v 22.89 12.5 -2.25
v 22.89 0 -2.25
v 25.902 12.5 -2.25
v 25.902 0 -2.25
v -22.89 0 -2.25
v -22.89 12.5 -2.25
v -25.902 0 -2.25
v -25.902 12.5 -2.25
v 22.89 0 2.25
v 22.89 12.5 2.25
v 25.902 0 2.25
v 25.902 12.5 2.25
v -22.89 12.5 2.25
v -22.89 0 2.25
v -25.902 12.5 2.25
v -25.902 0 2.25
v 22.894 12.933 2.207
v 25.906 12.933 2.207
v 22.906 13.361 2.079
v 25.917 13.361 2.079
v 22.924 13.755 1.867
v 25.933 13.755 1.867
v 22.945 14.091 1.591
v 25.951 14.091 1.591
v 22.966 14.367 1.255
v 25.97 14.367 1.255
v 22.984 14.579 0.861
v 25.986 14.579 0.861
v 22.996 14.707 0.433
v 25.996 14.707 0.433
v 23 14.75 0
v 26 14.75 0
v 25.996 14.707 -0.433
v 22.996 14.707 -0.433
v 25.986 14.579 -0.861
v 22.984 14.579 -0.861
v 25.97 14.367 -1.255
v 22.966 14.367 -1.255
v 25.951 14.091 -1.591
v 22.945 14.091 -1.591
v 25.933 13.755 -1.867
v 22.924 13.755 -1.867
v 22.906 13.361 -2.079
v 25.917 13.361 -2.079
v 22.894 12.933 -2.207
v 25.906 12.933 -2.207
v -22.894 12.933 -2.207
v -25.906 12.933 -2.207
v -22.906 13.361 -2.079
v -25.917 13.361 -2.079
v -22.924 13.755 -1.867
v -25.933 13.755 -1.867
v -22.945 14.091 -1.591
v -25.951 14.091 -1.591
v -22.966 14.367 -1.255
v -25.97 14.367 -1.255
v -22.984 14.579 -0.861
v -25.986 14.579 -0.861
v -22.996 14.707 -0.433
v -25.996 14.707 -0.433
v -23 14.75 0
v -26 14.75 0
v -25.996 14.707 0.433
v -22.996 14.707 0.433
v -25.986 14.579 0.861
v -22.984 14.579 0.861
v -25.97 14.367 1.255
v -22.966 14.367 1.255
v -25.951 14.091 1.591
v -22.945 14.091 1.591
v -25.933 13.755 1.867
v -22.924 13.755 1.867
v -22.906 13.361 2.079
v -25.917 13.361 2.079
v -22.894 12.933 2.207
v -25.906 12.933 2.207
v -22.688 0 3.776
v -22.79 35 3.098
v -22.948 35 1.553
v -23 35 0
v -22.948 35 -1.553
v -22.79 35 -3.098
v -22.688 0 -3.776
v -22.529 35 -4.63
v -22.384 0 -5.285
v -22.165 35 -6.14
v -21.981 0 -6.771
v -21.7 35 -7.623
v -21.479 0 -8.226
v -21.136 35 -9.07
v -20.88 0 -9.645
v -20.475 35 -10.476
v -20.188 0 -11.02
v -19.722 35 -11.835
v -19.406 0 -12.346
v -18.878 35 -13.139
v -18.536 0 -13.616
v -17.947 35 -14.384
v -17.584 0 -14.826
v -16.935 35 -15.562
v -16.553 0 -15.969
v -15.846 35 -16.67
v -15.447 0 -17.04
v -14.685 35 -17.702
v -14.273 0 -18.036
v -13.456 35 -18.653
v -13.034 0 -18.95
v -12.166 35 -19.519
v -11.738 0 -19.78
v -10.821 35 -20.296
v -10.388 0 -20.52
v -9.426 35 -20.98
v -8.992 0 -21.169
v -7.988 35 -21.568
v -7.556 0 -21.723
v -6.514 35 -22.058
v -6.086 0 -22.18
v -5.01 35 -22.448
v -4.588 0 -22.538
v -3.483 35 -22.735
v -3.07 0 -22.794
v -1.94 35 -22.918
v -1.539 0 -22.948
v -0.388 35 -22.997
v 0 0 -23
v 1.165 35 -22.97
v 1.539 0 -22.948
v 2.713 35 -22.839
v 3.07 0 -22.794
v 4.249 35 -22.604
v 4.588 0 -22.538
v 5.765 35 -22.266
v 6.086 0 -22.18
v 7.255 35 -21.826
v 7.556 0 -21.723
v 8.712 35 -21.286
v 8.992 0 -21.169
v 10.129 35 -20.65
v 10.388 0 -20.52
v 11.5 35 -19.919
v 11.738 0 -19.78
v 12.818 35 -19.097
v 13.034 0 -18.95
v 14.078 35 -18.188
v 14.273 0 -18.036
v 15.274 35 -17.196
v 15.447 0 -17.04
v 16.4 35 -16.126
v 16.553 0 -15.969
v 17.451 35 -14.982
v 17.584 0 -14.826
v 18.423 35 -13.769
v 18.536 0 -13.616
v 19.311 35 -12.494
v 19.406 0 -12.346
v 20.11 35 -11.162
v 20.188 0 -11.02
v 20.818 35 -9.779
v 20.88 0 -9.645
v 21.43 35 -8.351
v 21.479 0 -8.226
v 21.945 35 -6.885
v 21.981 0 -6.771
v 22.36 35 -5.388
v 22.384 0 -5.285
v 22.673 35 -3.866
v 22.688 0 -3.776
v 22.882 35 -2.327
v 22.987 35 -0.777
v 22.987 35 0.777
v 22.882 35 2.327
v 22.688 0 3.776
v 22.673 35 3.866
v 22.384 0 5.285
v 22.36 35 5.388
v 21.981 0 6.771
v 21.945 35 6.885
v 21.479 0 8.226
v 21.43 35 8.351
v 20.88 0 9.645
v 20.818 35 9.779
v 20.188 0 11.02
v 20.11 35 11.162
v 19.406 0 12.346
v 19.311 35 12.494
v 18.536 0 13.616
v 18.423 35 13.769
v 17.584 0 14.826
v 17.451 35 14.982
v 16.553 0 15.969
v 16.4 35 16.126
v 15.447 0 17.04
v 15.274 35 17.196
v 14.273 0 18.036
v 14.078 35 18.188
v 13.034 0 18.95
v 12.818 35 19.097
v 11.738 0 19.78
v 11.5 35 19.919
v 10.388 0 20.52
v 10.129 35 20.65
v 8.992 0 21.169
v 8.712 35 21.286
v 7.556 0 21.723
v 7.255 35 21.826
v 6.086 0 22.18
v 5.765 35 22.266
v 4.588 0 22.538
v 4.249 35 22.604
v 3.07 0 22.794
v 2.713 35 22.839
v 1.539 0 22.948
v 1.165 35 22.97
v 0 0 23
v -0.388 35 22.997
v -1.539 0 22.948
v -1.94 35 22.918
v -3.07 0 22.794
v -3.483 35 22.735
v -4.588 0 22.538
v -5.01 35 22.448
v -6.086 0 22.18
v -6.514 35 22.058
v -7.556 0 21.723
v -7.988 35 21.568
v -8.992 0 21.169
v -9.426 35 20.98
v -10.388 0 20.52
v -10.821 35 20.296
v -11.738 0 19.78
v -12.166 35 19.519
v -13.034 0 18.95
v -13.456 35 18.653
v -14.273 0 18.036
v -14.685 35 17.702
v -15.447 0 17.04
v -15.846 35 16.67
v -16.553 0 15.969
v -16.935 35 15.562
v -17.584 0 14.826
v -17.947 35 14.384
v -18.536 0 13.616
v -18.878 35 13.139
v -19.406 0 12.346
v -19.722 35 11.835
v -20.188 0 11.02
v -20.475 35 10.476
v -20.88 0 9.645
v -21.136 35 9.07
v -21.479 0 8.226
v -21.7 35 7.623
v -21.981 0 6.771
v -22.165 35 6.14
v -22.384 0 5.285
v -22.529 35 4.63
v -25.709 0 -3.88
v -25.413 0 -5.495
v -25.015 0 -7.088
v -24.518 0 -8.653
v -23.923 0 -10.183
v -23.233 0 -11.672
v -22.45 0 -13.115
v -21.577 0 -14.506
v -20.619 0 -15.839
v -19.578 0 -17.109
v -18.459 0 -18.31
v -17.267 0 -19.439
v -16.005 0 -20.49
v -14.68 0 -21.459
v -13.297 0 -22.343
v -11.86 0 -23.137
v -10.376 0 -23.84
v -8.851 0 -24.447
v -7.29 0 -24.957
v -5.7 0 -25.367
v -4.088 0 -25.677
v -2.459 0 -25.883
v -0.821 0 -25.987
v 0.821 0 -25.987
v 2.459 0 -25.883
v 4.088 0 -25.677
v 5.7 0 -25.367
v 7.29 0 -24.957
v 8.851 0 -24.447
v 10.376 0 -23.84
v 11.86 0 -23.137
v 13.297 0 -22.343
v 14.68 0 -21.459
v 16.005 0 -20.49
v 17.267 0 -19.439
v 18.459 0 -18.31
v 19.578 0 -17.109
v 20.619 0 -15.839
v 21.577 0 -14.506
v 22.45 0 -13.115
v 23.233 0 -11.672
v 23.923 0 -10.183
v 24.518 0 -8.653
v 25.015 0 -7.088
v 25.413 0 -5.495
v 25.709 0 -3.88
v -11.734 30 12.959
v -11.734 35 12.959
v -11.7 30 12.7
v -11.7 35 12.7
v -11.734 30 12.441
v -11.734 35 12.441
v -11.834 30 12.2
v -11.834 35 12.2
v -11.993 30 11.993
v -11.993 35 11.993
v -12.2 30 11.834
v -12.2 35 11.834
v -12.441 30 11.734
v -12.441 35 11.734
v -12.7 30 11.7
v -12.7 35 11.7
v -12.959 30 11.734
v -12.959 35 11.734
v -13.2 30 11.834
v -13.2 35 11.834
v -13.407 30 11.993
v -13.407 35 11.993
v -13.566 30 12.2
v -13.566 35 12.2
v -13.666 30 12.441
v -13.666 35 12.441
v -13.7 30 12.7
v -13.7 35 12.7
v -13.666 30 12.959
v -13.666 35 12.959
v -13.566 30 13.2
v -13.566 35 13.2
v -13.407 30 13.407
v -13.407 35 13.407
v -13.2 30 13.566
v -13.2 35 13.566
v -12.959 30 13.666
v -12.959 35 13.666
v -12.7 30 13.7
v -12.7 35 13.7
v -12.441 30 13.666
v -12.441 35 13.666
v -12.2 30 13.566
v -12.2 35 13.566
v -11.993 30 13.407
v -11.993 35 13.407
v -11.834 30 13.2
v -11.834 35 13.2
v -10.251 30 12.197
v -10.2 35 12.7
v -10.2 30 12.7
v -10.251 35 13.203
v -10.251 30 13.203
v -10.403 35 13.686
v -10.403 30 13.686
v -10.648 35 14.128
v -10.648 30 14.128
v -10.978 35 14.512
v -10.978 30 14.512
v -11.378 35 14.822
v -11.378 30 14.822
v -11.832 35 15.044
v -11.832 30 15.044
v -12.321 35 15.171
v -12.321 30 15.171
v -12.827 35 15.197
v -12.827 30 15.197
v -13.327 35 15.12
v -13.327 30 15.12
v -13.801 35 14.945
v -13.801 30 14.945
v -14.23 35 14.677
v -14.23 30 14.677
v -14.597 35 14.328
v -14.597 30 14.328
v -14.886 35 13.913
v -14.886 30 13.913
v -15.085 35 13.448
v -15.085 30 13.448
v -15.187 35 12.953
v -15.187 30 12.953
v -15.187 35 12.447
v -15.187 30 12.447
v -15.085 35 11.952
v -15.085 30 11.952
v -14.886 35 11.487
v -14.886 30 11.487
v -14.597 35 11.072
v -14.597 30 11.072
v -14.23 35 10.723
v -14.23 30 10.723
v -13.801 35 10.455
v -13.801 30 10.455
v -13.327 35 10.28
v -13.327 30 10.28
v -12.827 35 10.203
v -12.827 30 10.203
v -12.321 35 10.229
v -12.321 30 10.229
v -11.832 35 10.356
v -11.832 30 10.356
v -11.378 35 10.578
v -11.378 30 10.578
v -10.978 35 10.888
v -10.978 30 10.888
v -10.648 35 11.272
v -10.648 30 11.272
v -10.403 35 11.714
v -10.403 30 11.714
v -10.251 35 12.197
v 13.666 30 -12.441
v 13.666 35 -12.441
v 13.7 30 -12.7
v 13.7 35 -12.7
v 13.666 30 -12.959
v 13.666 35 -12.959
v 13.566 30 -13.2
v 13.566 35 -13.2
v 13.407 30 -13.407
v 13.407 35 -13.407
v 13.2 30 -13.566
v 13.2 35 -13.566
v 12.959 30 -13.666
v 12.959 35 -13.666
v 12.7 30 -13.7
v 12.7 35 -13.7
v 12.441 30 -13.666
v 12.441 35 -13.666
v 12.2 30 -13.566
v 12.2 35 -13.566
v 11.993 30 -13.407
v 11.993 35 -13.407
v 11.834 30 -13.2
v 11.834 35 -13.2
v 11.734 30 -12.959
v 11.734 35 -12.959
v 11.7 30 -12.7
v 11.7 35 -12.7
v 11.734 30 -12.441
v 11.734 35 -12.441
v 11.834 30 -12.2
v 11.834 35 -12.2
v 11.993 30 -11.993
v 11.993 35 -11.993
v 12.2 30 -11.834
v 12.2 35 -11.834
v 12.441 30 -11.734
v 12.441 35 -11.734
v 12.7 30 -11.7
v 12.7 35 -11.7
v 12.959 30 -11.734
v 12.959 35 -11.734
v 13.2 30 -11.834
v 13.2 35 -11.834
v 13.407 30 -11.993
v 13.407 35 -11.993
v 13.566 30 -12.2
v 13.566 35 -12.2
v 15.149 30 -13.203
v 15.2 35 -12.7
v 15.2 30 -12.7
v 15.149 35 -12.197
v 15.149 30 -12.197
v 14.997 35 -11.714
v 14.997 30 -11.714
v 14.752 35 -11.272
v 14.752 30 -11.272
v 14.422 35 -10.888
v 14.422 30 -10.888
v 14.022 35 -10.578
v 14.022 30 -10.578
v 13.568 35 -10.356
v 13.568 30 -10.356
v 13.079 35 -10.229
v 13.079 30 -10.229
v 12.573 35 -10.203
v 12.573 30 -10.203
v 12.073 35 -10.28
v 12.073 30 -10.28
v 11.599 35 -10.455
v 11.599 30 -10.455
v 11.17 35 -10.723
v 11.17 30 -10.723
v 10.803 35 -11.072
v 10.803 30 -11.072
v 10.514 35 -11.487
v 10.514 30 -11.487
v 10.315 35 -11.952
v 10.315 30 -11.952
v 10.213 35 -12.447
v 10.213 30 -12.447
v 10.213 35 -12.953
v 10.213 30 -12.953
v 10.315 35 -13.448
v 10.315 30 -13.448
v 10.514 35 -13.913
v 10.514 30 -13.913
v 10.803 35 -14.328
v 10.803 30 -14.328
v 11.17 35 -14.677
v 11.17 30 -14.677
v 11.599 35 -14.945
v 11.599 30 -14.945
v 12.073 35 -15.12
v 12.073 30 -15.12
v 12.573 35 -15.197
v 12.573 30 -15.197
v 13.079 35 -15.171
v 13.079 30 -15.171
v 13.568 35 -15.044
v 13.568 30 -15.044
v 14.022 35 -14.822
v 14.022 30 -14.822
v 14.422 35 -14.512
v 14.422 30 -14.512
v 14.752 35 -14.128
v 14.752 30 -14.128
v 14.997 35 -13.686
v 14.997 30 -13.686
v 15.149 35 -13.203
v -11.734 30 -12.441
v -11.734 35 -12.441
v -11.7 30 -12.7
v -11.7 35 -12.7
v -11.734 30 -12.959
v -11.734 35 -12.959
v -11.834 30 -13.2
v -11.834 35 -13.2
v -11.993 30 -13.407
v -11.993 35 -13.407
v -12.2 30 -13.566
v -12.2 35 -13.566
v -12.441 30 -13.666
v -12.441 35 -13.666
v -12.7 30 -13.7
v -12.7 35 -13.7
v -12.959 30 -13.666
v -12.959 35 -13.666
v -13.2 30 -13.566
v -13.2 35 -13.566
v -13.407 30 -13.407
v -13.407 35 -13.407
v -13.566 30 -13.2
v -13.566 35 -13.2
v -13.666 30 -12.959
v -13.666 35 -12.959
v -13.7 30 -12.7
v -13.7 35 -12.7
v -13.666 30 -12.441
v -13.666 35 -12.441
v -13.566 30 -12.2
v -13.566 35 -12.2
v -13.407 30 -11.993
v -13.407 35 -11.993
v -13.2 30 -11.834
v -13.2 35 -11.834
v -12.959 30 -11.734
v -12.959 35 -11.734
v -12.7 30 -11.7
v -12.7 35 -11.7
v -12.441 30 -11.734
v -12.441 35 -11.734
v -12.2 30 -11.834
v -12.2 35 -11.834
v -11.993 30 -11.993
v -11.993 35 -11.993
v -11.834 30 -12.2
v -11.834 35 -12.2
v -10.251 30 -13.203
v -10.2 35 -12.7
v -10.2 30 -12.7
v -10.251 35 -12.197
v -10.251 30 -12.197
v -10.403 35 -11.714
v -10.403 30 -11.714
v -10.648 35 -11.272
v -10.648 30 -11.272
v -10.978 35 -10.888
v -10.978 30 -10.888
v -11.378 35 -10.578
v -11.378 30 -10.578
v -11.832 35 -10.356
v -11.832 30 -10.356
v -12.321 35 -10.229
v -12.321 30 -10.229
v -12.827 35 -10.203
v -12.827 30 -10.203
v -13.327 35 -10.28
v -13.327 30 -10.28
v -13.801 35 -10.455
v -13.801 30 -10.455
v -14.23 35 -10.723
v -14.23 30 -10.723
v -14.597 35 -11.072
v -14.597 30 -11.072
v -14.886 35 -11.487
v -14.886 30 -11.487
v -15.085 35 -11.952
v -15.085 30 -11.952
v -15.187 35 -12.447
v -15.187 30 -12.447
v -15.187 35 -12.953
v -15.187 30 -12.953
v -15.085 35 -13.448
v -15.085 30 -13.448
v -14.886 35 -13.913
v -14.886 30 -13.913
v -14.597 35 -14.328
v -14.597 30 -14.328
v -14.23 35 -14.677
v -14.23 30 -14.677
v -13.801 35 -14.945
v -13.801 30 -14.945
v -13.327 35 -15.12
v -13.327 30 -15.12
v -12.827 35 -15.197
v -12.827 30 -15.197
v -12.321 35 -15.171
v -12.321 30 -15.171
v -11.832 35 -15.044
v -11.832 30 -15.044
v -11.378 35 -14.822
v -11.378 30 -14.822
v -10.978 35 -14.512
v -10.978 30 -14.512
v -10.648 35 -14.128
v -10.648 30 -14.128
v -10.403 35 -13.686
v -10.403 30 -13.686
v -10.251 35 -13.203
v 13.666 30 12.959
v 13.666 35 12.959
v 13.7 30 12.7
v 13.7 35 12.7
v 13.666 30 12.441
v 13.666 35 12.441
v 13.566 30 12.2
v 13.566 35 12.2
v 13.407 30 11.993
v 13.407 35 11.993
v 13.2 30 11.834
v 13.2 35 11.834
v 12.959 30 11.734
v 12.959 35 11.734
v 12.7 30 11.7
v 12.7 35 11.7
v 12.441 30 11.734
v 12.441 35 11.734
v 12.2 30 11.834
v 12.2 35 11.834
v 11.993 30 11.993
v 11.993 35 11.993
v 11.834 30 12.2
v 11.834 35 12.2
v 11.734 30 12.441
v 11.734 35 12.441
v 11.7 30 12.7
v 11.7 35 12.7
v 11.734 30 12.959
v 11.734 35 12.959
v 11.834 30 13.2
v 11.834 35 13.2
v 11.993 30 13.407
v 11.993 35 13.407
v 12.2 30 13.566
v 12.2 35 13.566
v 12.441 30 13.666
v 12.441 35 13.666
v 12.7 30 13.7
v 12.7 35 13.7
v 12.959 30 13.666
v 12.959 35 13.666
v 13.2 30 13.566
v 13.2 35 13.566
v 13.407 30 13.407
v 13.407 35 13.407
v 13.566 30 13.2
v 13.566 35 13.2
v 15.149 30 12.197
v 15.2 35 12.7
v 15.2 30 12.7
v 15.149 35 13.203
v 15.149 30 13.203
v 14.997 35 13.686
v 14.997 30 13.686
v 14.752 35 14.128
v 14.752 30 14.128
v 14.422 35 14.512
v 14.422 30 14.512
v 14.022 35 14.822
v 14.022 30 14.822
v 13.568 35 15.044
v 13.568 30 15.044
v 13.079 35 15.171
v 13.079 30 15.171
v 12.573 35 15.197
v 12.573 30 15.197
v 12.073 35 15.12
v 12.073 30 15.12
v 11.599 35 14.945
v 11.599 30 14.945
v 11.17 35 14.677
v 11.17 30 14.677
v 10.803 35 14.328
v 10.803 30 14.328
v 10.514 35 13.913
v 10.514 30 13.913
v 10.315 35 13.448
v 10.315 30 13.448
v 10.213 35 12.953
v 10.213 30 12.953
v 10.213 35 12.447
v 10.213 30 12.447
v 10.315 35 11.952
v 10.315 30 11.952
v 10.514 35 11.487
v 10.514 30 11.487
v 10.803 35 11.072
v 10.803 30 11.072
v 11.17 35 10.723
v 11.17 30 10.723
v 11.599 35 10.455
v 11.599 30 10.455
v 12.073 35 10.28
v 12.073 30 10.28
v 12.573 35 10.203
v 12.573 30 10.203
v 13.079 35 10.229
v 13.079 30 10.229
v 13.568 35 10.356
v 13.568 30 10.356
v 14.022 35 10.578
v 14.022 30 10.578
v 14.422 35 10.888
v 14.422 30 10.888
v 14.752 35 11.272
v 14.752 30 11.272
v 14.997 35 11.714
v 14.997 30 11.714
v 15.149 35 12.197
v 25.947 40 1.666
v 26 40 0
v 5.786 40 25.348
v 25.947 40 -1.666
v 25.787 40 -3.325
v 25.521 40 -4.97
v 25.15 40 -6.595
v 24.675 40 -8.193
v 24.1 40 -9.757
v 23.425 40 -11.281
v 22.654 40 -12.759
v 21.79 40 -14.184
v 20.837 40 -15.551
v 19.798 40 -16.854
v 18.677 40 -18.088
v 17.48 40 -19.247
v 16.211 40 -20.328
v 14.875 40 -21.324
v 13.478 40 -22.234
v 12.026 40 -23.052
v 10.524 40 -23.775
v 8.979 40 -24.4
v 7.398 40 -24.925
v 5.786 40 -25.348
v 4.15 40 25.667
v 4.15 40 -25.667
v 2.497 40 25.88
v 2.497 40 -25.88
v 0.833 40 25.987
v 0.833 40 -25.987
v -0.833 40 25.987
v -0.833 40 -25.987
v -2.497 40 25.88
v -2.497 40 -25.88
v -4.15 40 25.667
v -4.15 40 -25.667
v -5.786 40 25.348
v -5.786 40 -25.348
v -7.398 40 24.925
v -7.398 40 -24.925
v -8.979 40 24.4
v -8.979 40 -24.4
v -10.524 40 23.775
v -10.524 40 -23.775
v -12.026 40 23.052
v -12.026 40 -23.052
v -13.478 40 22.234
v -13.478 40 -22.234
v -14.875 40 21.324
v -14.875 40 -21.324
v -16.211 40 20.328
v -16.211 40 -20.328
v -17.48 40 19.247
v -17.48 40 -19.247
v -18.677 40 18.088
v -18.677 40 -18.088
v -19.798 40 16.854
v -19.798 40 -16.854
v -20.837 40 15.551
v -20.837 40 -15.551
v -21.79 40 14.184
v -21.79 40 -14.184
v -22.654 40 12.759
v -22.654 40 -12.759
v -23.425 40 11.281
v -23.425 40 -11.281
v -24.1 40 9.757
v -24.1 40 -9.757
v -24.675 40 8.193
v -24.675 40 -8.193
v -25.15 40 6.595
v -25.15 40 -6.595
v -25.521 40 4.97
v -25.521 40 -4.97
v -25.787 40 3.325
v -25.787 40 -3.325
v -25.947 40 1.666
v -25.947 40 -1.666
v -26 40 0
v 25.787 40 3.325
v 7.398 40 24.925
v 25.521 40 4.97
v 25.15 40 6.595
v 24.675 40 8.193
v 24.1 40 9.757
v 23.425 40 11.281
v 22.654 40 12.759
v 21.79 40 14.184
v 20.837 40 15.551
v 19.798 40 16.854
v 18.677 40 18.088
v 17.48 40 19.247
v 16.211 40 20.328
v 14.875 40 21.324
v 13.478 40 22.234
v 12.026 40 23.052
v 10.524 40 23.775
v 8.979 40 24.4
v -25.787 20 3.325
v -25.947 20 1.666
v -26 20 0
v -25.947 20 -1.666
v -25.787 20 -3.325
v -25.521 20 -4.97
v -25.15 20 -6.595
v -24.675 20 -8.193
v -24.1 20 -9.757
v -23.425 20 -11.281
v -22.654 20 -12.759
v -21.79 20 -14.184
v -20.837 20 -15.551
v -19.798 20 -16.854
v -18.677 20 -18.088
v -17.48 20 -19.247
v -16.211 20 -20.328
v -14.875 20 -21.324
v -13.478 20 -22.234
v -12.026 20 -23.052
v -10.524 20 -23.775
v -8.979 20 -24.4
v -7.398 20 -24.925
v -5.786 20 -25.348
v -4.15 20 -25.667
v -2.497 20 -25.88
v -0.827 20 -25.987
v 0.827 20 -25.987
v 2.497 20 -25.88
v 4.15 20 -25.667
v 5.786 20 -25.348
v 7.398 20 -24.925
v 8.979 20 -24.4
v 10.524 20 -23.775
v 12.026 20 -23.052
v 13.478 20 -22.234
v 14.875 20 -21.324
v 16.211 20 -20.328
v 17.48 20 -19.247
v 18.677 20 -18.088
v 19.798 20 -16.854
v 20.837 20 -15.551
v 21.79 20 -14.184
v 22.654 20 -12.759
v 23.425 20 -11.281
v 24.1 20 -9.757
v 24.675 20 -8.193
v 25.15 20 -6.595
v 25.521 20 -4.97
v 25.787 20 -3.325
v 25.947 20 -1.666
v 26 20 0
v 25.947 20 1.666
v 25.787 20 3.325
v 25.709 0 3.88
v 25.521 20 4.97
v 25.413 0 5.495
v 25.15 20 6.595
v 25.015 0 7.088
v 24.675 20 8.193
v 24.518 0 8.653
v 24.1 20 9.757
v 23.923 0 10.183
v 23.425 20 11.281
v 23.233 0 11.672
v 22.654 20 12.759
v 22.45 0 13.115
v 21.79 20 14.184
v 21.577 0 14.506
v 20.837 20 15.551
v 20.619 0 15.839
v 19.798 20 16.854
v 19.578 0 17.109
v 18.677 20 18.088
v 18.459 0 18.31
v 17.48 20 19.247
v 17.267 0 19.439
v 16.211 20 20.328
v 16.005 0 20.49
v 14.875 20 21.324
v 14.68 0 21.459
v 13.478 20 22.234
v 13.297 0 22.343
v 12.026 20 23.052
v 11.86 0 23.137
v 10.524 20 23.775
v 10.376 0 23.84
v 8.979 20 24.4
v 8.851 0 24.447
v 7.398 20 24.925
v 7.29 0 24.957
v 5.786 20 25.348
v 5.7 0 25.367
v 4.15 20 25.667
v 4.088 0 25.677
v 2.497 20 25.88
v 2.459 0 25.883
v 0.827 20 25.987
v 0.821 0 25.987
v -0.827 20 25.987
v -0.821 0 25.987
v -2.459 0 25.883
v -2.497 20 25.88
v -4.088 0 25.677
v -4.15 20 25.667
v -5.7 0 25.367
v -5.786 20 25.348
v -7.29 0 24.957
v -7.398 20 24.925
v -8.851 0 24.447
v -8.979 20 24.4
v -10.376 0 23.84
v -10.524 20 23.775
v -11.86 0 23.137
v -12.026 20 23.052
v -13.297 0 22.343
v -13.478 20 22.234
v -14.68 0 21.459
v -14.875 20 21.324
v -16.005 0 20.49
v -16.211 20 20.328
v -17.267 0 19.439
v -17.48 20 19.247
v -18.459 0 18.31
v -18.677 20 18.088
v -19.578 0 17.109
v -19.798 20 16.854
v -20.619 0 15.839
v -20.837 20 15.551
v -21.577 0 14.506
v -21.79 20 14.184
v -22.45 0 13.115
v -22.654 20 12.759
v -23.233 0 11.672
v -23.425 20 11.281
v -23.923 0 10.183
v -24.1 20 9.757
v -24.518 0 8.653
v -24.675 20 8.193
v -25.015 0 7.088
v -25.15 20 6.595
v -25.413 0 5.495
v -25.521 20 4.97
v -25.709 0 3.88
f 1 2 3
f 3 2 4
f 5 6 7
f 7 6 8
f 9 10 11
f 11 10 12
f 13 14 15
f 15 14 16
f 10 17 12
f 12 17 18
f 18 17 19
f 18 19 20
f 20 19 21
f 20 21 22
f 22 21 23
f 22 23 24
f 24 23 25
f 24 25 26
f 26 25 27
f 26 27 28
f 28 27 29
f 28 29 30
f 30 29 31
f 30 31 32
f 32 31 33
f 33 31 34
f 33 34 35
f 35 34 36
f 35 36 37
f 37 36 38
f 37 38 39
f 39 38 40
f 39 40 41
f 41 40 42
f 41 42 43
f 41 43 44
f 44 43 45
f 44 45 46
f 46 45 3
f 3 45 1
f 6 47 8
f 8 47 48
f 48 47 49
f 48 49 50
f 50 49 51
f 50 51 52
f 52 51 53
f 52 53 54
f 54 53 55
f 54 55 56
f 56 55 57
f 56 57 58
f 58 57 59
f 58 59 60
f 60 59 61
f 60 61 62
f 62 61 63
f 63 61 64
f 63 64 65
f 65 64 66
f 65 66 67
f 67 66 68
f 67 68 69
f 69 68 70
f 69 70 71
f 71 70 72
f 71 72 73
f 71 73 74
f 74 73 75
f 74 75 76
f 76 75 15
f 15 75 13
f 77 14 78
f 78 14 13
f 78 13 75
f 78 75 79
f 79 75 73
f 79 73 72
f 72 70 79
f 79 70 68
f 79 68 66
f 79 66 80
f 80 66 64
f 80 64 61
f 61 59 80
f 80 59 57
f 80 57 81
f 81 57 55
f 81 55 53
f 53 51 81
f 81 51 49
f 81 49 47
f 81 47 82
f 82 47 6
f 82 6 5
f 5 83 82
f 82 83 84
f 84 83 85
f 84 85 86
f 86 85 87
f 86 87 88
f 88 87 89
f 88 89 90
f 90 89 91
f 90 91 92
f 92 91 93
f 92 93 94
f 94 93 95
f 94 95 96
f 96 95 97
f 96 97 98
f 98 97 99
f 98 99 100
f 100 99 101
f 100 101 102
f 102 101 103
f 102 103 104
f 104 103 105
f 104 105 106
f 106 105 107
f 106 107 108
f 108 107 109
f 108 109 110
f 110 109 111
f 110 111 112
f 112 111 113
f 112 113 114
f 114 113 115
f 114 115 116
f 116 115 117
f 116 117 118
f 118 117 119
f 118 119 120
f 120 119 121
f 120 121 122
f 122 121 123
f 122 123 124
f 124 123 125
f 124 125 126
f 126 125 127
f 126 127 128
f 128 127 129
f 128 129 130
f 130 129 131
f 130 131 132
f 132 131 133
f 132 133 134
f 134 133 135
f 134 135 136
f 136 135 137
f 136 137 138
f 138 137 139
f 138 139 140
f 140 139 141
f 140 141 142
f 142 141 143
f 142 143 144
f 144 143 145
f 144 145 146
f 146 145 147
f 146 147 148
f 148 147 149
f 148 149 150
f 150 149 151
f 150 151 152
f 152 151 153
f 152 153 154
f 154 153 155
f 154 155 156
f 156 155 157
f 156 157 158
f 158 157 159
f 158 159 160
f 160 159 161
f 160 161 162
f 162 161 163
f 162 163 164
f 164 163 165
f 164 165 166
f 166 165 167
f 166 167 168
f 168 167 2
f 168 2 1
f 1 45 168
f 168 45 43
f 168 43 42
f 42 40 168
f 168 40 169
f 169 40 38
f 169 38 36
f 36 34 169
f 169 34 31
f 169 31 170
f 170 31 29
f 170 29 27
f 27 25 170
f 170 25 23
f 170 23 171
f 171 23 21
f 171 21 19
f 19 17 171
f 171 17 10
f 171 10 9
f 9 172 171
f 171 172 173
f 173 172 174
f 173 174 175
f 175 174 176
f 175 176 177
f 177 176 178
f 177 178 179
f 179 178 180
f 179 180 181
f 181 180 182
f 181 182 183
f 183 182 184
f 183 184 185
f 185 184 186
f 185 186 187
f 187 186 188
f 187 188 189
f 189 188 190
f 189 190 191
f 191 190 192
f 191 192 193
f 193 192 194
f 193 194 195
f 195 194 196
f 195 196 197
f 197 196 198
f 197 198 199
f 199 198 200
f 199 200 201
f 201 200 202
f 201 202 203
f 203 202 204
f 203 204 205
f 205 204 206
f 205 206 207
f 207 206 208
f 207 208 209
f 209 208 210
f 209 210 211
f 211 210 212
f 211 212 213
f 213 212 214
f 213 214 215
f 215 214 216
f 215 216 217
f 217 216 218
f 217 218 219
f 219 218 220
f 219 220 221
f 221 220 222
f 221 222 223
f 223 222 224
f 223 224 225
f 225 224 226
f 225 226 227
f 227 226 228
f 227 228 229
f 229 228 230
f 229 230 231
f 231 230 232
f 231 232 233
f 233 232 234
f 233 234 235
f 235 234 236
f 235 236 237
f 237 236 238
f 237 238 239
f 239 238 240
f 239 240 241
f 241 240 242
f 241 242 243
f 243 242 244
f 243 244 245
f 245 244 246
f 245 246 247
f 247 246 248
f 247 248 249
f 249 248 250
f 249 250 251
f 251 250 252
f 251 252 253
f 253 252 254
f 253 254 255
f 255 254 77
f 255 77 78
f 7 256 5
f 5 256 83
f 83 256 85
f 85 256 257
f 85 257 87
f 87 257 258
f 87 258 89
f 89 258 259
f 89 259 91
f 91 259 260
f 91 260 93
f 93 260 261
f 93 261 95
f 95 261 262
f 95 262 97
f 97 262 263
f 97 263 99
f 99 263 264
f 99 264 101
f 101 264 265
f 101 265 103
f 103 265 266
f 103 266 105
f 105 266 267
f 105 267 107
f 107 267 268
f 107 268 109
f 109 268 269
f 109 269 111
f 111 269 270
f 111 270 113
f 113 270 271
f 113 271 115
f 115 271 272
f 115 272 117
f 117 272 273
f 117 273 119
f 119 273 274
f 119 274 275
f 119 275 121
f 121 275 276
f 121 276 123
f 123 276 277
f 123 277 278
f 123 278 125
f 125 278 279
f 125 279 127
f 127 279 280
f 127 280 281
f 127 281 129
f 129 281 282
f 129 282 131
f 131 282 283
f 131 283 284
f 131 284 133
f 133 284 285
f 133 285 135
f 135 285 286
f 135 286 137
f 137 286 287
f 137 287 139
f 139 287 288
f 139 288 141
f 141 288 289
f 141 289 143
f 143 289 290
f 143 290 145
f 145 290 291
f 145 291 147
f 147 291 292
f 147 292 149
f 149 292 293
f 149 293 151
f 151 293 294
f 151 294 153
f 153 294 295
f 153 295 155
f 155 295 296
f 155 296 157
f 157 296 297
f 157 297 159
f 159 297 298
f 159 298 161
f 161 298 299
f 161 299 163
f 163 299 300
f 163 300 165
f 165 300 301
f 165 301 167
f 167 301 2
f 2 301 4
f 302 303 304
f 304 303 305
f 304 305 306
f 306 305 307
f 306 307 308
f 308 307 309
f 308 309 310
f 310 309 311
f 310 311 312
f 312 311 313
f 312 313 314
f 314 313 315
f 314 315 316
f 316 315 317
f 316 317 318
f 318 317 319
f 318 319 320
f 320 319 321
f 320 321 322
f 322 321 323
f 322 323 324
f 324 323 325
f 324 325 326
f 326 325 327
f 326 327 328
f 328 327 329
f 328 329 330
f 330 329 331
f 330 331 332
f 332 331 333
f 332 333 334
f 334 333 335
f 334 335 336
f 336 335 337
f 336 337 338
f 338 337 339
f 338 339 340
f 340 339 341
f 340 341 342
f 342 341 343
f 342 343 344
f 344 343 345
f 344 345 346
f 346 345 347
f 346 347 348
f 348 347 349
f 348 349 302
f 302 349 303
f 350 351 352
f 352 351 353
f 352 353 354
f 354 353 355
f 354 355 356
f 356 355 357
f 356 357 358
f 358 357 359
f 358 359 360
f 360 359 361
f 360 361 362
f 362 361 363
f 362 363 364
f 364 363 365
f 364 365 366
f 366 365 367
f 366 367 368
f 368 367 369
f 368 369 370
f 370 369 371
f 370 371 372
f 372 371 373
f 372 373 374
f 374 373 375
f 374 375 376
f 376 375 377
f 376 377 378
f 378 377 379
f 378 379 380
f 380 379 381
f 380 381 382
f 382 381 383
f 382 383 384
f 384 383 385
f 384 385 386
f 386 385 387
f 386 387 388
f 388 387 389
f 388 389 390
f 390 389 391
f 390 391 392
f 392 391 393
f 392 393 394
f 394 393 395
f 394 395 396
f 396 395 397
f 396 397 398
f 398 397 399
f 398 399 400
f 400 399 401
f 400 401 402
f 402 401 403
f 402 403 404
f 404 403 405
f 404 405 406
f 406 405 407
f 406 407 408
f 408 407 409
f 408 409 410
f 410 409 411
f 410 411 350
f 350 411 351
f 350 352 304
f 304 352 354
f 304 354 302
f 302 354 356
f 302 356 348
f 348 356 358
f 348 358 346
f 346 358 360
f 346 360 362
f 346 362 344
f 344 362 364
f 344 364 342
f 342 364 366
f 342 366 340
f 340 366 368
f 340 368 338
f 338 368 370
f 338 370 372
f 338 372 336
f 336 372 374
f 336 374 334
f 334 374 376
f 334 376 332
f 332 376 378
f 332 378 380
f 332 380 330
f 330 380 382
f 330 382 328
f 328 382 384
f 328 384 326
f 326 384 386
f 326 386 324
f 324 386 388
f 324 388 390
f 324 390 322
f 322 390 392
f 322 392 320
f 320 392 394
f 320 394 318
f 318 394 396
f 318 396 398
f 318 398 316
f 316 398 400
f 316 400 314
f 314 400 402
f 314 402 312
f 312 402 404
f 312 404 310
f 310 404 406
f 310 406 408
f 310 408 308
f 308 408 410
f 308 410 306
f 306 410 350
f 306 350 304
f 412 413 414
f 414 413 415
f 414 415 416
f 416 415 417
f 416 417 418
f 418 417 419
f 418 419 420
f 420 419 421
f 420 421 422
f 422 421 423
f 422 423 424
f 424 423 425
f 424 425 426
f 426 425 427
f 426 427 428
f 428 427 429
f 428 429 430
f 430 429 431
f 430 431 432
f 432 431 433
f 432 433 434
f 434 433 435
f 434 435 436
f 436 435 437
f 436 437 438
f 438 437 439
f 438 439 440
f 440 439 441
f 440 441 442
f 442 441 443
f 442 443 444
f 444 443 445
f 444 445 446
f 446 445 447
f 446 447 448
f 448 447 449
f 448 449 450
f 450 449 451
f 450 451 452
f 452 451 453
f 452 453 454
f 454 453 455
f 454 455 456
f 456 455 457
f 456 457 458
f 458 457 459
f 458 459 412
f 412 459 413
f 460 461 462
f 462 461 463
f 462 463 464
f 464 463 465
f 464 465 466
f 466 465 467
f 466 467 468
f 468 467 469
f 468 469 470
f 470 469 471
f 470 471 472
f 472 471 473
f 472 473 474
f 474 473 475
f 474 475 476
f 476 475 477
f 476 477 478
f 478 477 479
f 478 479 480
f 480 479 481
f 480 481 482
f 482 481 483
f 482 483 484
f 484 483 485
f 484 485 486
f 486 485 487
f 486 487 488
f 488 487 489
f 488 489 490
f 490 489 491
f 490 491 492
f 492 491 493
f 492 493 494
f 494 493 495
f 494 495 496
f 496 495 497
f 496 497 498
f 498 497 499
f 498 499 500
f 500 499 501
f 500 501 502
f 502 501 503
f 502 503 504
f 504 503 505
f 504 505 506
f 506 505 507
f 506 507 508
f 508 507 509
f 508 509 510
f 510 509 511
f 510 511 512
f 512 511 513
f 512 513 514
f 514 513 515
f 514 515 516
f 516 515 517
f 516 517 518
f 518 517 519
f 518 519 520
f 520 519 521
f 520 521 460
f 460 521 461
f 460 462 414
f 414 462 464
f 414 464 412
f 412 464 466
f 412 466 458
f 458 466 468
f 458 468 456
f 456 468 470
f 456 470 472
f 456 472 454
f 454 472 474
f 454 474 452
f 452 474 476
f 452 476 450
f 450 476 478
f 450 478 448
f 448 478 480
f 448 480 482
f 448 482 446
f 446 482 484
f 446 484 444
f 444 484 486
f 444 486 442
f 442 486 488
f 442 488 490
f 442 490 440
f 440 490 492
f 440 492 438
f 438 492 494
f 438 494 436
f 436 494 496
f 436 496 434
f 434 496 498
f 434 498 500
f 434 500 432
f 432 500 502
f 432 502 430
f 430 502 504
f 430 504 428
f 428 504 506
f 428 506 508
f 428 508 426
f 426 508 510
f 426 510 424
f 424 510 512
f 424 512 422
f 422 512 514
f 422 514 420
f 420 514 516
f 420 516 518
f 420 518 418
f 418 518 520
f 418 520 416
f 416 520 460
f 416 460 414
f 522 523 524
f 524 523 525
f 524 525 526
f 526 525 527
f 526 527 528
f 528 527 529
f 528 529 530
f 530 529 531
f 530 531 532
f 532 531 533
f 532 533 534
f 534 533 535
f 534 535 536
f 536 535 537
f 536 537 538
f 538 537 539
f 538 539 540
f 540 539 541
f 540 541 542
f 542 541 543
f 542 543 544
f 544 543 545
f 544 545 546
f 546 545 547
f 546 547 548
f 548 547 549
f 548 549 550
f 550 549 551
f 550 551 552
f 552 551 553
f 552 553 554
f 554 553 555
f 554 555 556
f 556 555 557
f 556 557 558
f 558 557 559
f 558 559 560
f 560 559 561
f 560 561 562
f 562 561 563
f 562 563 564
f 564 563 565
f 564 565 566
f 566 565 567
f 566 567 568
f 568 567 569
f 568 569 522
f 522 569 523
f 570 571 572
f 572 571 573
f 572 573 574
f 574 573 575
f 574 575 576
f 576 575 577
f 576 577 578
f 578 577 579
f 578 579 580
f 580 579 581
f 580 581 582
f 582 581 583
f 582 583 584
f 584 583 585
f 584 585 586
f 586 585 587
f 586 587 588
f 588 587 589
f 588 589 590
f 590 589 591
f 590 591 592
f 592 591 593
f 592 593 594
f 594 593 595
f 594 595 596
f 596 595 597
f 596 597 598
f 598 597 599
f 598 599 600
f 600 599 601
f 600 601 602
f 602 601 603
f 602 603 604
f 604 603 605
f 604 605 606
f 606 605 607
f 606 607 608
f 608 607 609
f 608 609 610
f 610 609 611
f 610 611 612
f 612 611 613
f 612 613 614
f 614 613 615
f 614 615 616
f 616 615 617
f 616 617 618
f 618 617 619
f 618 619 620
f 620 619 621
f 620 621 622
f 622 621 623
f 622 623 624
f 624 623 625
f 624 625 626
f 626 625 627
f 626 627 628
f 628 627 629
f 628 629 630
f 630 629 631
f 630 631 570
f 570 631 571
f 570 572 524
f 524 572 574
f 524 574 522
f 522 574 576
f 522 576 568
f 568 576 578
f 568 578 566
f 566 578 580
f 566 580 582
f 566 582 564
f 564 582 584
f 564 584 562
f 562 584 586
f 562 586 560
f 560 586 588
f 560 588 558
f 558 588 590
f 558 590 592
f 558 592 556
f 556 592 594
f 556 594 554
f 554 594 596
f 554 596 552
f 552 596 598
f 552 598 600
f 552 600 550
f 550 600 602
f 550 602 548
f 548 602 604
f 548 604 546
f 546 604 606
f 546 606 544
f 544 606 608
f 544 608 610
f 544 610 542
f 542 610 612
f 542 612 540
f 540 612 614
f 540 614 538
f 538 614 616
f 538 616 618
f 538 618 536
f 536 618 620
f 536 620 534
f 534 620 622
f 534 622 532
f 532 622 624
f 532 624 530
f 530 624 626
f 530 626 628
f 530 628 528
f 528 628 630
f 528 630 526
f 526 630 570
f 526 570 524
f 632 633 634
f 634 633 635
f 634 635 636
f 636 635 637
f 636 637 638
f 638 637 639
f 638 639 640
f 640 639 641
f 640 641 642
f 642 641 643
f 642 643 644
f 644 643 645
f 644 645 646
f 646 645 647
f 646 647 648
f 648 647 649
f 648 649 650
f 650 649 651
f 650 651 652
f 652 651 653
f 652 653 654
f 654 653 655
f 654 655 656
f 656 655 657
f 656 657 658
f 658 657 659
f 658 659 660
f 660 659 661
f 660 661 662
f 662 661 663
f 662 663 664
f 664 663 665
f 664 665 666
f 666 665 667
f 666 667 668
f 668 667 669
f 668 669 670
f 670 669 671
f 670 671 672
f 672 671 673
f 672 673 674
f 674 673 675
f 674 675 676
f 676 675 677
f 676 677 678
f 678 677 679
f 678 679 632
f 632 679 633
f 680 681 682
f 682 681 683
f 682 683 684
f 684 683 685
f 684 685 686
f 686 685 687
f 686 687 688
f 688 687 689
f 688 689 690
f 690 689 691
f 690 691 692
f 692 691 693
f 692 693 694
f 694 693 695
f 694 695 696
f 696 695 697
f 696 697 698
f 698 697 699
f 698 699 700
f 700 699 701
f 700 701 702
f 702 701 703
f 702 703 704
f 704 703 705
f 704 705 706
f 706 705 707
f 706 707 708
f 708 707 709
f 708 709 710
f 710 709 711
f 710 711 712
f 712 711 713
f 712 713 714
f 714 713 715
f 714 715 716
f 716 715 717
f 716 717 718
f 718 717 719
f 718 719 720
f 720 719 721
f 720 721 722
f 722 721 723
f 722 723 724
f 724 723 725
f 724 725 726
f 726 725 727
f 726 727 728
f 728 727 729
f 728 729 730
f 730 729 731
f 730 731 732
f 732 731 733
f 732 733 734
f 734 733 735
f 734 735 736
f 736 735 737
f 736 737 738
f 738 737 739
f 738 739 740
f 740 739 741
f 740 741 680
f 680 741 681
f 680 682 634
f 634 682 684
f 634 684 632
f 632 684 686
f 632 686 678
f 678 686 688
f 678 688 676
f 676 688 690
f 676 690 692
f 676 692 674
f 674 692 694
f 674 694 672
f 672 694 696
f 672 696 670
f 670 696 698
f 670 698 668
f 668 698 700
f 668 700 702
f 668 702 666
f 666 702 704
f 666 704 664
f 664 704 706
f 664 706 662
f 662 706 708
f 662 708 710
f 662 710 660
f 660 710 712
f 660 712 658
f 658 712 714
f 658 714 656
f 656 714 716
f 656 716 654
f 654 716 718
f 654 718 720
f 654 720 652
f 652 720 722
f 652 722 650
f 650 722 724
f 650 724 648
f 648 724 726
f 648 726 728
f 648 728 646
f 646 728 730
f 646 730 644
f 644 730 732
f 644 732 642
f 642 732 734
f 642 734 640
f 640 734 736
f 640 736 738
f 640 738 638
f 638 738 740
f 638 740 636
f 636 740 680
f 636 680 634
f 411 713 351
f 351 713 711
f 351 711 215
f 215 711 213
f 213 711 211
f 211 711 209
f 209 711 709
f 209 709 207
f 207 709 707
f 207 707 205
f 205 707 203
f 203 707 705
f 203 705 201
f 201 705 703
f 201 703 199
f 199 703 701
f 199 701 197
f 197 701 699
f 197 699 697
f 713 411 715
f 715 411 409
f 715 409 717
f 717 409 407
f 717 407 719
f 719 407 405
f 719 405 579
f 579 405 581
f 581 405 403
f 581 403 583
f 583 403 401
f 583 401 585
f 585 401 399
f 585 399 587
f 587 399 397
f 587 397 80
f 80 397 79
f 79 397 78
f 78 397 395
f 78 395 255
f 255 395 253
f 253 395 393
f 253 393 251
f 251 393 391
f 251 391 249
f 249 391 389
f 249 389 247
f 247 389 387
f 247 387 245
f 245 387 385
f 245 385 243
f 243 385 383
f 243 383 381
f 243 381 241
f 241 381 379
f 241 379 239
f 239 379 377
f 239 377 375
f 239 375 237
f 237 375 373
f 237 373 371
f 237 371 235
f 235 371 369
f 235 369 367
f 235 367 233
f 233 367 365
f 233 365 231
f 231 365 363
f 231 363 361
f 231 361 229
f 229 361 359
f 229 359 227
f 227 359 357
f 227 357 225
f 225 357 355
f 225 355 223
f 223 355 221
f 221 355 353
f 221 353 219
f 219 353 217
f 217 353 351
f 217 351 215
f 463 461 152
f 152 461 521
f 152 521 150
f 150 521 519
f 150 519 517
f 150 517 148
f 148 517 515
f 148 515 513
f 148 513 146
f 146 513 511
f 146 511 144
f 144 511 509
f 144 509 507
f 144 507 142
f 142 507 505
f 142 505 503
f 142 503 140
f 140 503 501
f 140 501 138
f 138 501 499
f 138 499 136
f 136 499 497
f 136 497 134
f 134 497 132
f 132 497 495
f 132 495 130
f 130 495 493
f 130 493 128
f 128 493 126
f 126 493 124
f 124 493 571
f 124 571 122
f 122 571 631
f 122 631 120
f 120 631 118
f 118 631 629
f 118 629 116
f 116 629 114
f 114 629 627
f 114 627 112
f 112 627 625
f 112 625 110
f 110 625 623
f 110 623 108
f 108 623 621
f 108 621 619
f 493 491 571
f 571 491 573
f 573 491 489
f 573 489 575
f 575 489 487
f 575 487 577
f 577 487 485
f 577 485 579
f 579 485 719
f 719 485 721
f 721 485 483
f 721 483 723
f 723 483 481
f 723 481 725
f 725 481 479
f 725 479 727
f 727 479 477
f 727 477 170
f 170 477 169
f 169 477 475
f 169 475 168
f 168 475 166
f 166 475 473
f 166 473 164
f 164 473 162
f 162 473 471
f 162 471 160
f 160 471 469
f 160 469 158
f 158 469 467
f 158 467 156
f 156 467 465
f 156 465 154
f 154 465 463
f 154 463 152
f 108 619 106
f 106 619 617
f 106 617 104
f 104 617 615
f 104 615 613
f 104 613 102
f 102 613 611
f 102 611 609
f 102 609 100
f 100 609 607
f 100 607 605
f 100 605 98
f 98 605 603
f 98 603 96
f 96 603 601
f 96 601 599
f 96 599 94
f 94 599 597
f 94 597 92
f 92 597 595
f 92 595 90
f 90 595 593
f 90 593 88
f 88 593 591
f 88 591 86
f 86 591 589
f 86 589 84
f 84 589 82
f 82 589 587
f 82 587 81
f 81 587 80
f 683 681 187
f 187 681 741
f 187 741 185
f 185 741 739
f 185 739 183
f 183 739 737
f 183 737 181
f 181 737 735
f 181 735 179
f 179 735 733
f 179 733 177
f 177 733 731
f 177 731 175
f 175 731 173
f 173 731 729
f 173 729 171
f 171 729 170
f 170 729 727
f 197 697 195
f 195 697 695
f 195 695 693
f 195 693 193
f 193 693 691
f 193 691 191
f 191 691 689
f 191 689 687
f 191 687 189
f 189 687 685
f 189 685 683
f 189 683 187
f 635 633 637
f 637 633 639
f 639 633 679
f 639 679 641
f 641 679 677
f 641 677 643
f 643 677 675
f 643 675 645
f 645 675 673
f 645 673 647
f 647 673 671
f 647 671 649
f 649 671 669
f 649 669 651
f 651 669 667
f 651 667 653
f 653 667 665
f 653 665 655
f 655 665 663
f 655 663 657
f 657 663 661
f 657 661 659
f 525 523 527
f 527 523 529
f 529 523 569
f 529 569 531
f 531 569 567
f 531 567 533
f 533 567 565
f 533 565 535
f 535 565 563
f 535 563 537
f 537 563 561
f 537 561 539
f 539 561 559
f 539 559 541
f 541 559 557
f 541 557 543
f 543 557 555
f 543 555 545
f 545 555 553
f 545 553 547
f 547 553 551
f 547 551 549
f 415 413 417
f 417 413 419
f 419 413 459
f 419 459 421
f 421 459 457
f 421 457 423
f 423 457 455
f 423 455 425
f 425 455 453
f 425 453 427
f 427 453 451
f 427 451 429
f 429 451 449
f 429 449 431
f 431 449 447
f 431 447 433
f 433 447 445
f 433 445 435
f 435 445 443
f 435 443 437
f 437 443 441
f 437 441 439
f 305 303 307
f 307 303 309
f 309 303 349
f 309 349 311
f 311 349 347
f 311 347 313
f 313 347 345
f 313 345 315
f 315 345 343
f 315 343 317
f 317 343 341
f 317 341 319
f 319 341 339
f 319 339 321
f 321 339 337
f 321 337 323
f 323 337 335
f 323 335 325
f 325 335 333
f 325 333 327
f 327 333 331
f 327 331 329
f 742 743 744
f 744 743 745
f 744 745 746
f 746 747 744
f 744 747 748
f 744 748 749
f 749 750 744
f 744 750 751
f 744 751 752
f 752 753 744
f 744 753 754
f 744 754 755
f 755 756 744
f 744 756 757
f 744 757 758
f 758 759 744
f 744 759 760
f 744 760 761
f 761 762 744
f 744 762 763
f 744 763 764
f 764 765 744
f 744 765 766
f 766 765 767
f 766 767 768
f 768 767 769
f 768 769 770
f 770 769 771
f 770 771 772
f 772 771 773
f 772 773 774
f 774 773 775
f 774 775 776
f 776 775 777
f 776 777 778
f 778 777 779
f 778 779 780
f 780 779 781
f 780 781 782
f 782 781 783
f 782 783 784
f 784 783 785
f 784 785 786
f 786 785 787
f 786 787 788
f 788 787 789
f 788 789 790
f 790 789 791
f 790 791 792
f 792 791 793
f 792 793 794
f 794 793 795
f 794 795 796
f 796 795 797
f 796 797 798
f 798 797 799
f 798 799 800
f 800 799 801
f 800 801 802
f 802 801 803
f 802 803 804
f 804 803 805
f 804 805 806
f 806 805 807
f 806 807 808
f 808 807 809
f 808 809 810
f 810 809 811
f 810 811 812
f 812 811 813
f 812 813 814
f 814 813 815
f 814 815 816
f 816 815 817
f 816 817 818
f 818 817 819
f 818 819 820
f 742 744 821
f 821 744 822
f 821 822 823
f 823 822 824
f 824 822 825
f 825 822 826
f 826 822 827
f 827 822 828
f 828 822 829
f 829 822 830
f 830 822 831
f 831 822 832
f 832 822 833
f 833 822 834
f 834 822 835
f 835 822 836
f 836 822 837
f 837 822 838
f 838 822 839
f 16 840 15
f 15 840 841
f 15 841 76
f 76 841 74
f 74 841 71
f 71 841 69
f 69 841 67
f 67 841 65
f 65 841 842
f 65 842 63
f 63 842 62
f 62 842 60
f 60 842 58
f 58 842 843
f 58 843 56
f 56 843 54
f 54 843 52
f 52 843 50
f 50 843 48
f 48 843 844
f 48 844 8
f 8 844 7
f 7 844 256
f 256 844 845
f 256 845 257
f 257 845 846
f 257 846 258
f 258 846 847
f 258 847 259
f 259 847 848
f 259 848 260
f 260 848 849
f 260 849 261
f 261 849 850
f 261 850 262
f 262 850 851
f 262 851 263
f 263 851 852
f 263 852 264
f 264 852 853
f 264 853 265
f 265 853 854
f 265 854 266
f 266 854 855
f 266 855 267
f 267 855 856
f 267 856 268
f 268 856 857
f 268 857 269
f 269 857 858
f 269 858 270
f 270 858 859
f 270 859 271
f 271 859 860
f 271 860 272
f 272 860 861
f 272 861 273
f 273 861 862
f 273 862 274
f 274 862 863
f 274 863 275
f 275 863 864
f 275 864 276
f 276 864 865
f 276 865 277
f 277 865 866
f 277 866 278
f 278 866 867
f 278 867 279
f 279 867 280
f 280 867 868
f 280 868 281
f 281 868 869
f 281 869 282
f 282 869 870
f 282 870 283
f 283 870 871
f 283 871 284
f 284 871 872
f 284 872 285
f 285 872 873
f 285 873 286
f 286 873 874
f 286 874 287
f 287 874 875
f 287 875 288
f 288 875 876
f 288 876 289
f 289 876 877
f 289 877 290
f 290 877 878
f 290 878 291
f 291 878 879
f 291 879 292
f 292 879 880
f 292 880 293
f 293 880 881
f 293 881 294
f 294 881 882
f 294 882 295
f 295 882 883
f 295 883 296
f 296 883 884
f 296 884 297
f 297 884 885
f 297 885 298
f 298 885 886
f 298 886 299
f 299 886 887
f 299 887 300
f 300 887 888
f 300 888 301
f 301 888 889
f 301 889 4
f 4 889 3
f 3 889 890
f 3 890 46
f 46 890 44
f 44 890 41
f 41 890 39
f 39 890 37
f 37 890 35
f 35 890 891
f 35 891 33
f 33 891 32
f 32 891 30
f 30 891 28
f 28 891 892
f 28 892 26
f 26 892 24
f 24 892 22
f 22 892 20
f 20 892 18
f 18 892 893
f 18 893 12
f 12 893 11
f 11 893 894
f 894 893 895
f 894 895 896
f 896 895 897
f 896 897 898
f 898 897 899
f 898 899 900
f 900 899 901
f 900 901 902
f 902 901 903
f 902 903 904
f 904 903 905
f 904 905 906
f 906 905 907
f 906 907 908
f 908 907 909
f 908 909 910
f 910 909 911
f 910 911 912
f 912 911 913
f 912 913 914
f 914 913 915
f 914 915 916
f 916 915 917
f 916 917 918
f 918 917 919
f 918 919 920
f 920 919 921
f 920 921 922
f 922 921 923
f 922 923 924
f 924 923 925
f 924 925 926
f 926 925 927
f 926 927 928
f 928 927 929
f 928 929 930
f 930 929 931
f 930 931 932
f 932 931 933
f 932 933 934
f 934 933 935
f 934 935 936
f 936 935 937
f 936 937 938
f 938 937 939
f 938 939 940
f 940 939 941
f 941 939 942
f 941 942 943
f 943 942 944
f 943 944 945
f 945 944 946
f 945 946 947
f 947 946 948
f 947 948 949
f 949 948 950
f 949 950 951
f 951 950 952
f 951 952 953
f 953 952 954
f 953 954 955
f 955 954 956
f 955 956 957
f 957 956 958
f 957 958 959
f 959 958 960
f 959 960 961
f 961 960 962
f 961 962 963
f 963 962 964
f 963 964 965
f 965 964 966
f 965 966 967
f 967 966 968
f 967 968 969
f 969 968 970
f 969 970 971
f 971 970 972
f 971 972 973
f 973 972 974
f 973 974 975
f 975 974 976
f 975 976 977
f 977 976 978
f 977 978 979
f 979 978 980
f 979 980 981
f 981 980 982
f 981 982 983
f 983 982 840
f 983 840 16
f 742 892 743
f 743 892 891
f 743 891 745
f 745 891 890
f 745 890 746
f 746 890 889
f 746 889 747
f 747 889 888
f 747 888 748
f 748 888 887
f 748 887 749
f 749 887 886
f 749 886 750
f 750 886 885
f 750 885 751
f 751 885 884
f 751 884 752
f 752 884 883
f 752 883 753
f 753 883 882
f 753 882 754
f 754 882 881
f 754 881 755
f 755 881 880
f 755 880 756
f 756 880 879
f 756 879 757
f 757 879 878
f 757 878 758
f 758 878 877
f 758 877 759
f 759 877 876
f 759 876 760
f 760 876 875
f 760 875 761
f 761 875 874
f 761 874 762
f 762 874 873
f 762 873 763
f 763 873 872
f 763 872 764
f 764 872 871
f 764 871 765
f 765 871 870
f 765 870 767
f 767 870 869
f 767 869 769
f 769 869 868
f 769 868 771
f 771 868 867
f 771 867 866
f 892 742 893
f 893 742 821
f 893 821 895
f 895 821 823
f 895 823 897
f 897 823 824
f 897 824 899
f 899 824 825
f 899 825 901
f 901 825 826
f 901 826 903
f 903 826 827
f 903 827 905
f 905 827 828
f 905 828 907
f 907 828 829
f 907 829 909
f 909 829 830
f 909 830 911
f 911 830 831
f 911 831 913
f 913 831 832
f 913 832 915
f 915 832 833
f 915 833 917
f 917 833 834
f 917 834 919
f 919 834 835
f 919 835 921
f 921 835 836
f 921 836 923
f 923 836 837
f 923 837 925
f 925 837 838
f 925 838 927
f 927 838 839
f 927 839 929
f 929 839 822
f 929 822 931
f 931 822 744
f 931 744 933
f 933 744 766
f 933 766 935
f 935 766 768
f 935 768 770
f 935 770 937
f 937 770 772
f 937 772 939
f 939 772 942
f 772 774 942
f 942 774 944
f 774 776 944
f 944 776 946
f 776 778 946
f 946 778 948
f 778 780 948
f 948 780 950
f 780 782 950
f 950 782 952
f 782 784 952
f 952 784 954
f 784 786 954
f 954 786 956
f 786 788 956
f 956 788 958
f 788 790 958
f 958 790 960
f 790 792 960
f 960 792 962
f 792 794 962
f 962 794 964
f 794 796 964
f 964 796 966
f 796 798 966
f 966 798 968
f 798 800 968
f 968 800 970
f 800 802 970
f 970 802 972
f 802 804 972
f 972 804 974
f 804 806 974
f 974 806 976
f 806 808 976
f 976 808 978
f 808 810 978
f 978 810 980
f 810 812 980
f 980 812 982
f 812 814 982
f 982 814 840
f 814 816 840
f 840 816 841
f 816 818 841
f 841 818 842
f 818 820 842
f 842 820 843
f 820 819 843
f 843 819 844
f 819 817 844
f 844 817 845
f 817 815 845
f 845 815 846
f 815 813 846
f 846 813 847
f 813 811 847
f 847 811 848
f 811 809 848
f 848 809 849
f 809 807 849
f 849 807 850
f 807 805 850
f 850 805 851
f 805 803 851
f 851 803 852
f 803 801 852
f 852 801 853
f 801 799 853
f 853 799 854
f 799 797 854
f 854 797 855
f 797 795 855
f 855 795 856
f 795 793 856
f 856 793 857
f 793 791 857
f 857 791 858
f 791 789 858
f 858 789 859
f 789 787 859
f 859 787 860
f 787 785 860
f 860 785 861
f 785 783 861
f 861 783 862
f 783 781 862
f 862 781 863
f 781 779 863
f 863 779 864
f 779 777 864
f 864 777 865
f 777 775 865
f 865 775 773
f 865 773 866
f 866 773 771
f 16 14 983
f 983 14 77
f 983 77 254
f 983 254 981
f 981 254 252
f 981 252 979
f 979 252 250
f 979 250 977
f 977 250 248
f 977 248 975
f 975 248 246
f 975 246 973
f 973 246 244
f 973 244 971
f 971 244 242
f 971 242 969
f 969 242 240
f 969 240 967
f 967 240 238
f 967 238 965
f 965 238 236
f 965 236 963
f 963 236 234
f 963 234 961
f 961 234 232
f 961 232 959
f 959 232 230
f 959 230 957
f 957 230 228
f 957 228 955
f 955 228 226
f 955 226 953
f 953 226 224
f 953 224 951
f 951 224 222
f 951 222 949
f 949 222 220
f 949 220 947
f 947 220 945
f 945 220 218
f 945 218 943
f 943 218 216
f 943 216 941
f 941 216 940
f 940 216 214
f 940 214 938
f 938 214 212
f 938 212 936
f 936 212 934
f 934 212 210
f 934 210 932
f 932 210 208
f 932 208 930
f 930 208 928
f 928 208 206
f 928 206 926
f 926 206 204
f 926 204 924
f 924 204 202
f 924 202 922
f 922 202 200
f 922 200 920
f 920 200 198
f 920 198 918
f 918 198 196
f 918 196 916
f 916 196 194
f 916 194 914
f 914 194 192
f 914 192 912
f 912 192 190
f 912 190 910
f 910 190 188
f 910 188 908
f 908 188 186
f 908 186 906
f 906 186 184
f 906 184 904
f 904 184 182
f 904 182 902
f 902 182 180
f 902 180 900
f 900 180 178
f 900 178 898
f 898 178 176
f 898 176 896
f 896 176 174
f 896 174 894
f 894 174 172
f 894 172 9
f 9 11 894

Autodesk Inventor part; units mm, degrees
ref_plane "XZ Plane" through (0, 0, 0) normal (0, 1, 0) x (-1, 0, 0)
ref_plane "XY Plane" through (0, 0, 0) normal (0, 0, 1) x (1, 0, 0)
sketch "Sketch1" plane through (0, 0, 0) normal (0, 1, 0) x (-1, 0, 0)
  circle A0 centre (0, 0) radius 23
  circle A1 centre (0, 0) radius 26
  dimension "d0" = 46
  dimension "d1" = 52
extrude "Extrusion1" add sketch "Sketch1" along normal blind 35
sketch "Sketch2" plane through (0, 35, 0) normal (0, 1, 0) x (1, 0, 0)
  circle A0 centre (0, 0) radius 26
extrude "Extrusion2" add sketch "Sketch2" along normal blind 5
sketch "Sketch3" plane through (0, 35, 0) normal (0, -1, 0) x (1, 0, 0)
  line L0 (-12.7, 12.7) -> (12.7, 12.7)
  line L1 (12.7, 12.7) -> (12.7, -12.7)
  line L2 (12.7, -12.7) -> (-12.7, -12.7)
  line L3 (-12.7, -12.7) -> (-12.7, 12.7)
  line L4 (-12.7, 12.7) -> (12.7, -12.7) construction
  line L5 (12.7, 12.7) -> (-12.7, -12.7) construction
  circle A0 centre (12.7, 12.7) radius 2.5
  circle A1 centre (12.7, -12.7) radius 2.5
  circle A2 centre (-12.7, -12.7) radius 2.5
  circle A3 centre (-12.7, 12.7) radius 2.5
  circle A4 centre (12.7, 12.7) radius 1
  circle A5 centre (12.7, -12.7) radius 1
  circle A6 centre (-12.7, -12.7) radius 1
  circle A7 centre (-12.7, 12.7) radius 1
  point P0 (0, 0)
  dimension "d6" = 25.4
  dimension "d7" = 25.4
  dimension "d8" = 5
  dimension "d9" = 5
  dimension "d10" = 5
  dimension "d11" = 5
  dimension "d14" = 2
  dimension "d15" = 2
  dimension "d16" = 2
  dimension "d17" = 2
extrude "Extrusion3" add sketch "Sketch3" along normal blind 5 contours A7 L3 A3 L0 | L0 A3 L3 A7 | A0 L1 A4 L0 | L0 A4 L1 A0 | A2 L2 A6 L3 | L3 A6 L2 A2 | A1 L2 A5 L1 | L1 A5 L2 A1
ref_plane "Work Plane1" through (26, 0, 0) normal (1, 0, 0) x (0, 1, 0)
sketch "Sketch4" plane through (26, 0, 0) normal (1, 0, 0) x (0, 1, 0)
  line L0 (0, 0) -> (12.5, 0) construction
  line L1 (0, -2.25) -> (12.5, -2.25)
  line L2 (12.5, 2.25) -> (0, 2.25)
  arc A0 (0, 2.25) -> (0, -2.25) centre (0, 0) ccw
  arc A1 (12.5, -2.25) -> (12.5, 2.25) centre (12.5, 0) ccw
  point P0 (0, 0)
  point P1 (6.25, 0)
  dimension "d19" = 12.5
  dimension "d20" = 4.5
extrude "Extrusion4" cut sketch "Sketch4" against normal through all
properties part number "TopPotentiometer_3DPrint"
